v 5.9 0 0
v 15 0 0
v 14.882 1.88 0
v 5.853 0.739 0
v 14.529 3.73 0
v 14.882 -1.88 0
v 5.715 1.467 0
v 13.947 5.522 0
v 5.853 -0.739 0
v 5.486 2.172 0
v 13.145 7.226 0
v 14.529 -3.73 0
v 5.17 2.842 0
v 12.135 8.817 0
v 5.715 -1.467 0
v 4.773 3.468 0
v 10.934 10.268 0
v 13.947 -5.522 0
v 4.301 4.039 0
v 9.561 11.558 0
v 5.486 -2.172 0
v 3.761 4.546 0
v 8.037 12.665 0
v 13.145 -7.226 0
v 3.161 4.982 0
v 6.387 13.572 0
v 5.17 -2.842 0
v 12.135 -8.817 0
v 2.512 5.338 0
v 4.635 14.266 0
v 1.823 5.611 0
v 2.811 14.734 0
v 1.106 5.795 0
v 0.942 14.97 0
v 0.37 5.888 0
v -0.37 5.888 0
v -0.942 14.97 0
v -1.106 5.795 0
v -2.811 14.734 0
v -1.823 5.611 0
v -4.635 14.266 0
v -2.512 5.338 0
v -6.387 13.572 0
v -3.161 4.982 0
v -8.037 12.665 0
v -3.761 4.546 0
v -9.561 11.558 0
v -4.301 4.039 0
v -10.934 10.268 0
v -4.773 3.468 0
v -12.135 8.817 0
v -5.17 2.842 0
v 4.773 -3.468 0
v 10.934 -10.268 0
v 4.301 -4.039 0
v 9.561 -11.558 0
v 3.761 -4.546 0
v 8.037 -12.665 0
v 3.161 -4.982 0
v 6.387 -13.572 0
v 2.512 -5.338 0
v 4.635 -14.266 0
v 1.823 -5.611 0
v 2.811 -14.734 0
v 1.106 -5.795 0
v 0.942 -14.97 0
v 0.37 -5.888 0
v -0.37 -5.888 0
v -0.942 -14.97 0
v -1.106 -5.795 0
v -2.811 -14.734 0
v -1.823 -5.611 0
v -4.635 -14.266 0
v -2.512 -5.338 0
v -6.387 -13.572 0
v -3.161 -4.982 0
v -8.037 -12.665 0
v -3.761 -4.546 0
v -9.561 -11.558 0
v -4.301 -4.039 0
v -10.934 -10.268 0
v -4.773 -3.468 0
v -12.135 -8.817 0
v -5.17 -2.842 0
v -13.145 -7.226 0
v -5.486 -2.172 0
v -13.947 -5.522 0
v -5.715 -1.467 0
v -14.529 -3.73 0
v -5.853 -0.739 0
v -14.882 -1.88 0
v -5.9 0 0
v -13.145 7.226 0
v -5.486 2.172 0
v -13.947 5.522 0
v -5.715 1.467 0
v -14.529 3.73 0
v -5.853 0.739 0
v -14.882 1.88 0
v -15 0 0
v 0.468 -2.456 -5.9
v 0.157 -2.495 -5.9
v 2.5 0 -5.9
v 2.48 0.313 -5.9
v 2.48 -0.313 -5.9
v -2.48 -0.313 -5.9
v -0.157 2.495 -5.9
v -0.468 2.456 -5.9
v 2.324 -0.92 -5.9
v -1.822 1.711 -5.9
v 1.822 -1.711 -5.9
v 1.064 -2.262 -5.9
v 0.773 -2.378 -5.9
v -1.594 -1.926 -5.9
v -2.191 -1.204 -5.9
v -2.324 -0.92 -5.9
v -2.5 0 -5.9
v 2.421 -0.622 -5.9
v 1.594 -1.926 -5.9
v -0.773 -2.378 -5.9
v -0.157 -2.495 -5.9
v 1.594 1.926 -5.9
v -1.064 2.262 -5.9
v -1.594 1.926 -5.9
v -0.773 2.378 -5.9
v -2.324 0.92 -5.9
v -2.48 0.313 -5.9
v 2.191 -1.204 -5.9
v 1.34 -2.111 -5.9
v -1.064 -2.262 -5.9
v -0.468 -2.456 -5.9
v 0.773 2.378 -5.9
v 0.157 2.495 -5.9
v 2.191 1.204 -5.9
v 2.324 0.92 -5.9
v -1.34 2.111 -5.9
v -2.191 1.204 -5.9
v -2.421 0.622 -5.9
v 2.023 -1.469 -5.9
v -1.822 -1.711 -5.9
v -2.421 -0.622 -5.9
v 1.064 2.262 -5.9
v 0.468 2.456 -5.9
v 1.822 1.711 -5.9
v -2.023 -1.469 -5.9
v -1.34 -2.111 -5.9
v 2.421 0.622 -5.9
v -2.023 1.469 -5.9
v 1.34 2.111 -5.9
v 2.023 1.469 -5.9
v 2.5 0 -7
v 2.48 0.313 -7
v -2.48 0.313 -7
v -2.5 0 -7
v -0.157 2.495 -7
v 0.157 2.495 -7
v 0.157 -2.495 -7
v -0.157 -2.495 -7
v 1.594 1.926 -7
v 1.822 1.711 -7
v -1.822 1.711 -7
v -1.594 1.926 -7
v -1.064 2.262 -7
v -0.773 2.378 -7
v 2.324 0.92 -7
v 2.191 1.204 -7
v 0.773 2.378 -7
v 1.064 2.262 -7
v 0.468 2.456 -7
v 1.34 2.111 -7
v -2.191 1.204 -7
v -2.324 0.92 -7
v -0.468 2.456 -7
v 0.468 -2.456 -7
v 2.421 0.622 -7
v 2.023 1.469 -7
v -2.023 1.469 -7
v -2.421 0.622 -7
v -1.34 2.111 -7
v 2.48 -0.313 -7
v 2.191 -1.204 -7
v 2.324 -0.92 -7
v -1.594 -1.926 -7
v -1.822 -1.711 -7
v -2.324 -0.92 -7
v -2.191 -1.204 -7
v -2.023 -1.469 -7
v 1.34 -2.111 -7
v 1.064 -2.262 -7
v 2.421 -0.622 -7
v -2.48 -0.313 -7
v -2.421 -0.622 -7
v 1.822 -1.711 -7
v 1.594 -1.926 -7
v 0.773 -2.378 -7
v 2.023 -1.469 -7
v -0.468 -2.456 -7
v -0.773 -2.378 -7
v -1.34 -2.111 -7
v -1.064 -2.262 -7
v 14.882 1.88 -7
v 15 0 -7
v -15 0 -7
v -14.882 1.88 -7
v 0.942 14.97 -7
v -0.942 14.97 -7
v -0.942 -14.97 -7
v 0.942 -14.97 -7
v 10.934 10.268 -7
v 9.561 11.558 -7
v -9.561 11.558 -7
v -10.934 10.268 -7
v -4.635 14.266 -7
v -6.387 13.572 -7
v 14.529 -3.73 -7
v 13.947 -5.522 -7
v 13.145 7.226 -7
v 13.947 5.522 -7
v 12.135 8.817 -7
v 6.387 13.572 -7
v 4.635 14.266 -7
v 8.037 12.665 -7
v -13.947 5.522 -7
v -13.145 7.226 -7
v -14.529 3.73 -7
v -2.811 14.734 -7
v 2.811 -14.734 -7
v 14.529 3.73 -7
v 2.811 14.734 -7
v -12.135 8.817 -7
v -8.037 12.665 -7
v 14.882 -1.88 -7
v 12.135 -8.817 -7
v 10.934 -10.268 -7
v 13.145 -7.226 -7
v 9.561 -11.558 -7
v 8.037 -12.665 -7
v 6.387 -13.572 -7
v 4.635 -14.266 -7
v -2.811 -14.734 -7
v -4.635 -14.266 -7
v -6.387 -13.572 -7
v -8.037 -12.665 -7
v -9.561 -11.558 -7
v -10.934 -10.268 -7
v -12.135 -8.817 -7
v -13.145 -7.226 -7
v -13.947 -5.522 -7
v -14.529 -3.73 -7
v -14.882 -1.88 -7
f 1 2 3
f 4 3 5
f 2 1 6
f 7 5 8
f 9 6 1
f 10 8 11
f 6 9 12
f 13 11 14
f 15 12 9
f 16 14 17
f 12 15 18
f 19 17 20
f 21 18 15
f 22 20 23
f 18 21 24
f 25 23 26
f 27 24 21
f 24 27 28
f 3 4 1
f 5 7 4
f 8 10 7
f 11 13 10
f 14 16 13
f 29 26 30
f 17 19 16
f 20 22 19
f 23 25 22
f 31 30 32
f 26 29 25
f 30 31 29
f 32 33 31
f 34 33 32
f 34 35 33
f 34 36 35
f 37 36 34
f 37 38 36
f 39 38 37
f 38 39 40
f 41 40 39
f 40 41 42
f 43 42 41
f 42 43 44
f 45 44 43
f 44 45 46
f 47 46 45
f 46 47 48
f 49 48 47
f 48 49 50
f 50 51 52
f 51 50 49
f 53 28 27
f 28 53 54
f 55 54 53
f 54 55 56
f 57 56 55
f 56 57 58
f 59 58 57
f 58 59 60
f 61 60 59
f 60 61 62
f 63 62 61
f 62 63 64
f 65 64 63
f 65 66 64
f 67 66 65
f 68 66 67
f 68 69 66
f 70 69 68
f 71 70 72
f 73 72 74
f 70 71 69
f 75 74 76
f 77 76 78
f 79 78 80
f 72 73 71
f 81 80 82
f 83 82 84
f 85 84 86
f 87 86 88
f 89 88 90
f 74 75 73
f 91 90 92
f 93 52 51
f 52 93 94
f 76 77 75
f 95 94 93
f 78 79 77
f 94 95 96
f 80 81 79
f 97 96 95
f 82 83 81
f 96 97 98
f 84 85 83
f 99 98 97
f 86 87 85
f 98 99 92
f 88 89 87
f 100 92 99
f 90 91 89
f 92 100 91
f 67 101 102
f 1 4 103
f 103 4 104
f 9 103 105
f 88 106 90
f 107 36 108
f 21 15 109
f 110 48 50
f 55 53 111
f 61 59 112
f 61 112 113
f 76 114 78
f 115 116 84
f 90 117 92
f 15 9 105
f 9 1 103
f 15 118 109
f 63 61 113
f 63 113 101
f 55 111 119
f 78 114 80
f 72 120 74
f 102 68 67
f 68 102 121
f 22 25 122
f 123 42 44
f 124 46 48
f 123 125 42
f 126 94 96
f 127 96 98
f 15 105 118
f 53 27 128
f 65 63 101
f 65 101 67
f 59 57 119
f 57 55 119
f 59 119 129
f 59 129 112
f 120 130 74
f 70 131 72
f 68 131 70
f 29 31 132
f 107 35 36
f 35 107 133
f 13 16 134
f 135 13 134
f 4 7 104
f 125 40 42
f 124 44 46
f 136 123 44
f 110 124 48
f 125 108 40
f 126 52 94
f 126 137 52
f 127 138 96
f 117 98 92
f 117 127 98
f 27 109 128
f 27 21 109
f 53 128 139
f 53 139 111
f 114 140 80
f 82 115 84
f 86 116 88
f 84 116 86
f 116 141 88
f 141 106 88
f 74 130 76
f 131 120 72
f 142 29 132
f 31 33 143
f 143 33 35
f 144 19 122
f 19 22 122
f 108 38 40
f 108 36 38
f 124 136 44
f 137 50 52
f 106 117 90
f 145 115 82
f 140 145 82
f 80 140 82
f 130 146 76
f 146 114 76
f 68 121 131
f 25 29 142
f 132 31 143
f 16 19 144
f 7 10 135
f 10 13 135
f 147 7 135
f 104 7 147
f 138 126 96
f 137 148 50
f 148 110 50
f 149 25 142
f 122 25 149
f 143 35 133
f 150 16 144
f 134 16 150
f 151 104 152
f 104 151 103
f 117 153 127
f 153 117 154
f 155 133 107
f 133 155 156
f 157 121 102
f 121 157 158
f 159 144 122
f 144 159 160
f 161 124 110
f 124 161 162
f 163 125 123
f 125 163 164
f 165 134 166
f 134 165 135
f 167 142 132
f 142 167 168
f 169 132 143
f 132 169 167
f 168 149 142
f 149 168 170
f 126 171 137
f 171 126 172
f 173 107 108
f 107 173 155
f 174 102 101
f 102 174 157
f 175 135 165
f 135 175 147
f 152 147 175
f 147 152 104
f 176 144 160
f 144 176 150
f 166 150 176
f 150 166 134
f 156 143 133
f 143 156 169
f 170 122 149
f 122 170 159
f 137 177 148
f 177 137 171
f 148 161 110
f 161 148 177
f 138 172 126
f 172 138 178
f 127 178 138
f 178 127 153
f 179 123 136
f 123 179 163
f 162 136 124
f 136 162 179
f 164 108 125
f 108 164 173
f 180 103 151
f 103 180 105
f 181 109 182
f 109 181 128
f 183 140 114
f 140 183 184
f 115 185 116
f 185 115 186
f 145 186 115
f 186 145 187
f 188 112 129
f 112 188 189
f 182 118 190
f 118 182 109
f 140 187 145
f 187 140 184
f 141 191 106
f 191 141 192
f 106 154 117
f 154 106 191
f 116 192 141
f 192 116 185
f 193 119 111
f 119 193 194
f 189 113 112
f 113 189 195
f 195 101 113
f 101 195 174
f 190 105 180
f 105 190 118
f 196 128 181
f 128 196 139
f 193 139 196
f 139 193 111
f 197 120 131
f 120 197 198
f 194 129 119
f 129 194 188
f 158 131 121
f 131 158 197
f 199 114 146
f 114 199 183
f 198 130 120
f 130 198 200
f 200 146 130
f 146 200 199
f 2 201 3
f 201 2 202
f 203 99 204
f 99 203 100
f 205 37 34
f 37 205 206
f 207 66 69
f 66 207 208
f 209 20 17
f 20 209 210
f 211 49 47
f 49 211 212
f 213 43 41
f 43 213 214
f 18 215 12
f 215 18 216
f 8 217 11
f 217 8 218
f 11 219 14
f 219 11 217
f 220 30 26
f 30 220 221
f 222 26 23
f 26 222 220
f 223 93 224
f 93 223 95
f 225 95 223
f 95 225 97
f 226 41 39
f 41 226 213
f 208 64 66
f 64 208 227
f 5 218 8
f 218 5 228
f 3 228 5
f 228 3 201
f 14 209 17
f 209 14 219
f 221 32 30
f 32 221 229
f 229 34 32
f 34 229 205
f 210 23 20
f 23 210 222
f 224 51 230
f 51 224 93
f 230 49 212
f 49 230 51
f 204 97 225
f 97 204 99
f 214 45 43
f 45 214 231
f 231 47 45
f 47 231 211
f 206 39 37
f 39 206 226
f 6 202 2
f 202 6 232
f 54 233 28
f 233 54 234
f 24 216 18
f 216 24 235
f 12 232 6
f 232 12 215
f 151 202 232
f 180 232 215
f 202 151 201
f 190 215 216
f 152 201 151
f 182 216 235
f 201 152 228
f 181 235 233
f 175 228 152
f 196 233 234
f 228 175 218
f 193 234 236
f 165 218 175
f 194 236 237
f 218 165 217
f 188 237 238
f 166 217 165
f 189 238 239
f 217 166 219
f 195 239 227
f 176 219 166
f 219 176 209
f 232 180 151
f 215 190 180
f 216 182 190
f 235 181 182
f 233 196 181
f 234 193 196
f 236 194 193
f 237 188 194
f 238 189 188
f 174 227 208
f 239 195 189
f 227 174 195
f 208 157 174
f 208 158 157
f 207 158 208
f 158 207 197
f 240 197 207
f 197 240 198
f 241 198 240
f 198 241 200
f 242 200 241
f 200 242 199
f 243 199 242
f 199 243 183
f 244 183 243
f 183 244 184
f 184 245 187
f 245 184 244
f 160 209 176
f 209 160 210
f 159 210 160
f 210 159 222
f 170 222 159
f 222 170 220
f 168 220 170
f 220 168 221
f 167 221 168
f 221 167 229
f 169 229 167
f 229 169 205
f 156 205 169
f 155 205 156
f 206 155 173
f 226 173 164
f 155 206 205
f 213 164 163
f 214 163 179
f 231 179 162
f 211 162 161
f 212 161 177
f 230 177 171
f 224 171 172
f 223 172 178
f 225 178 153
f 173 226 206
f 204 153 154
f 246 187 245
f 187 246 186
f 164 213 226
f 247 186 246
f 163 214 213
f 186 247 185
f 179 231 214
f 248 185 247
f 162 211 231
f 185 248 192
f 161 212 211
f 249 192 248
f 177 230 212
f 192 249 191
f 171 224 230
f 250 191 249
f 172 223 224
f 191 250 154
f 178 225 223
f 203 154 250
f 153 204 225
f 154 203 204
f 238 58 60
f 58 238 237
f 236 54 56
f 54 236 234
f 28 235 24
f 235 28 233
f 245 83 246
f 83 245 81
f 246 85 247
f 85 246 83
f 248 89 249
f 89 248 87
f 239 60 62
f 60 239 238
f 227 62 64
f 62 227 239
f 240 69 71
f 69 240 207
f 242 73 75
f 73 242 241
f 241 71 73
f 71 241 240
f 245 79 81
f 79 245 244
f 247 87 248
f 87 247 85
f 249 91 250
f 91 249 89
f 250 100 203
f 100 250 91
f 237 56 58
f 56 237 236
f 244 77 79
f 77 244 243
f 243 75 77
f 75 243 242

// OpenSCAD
$fn = 50;


difference() {
	union() {
		translate(v = [0, 0, -7.0000000000]) {
			cylinder(h = 7, r = 15.0000000000);
		}
	}
	union() {
		translate(v = [0, 0, 0]) {
			rotate(a = [0, 0, 0]) {
				difference() {
					union() {
						#translate(v = [0, 0, -9.0000000000]) {
							cylinder(h = 9, r = 2.2500000000);
						}
						#translate(v = [0, 0, -5.9000000000]) {
							cylinder(h = 5.9000000000, r1 = 2.5000000000, r2 = 5.9000000000);
						}
						#translate(v = [0, 0, -9.0000000000]) {
							cylinder(h = 9, r = 2.5000000000);
						}
						#translate(v = [0, 0, -9.0000000000]) {
							cylinder(h = 9, r = 2.2500000000);
						}
					}
					union();
				}
			}
		}
	}
}
